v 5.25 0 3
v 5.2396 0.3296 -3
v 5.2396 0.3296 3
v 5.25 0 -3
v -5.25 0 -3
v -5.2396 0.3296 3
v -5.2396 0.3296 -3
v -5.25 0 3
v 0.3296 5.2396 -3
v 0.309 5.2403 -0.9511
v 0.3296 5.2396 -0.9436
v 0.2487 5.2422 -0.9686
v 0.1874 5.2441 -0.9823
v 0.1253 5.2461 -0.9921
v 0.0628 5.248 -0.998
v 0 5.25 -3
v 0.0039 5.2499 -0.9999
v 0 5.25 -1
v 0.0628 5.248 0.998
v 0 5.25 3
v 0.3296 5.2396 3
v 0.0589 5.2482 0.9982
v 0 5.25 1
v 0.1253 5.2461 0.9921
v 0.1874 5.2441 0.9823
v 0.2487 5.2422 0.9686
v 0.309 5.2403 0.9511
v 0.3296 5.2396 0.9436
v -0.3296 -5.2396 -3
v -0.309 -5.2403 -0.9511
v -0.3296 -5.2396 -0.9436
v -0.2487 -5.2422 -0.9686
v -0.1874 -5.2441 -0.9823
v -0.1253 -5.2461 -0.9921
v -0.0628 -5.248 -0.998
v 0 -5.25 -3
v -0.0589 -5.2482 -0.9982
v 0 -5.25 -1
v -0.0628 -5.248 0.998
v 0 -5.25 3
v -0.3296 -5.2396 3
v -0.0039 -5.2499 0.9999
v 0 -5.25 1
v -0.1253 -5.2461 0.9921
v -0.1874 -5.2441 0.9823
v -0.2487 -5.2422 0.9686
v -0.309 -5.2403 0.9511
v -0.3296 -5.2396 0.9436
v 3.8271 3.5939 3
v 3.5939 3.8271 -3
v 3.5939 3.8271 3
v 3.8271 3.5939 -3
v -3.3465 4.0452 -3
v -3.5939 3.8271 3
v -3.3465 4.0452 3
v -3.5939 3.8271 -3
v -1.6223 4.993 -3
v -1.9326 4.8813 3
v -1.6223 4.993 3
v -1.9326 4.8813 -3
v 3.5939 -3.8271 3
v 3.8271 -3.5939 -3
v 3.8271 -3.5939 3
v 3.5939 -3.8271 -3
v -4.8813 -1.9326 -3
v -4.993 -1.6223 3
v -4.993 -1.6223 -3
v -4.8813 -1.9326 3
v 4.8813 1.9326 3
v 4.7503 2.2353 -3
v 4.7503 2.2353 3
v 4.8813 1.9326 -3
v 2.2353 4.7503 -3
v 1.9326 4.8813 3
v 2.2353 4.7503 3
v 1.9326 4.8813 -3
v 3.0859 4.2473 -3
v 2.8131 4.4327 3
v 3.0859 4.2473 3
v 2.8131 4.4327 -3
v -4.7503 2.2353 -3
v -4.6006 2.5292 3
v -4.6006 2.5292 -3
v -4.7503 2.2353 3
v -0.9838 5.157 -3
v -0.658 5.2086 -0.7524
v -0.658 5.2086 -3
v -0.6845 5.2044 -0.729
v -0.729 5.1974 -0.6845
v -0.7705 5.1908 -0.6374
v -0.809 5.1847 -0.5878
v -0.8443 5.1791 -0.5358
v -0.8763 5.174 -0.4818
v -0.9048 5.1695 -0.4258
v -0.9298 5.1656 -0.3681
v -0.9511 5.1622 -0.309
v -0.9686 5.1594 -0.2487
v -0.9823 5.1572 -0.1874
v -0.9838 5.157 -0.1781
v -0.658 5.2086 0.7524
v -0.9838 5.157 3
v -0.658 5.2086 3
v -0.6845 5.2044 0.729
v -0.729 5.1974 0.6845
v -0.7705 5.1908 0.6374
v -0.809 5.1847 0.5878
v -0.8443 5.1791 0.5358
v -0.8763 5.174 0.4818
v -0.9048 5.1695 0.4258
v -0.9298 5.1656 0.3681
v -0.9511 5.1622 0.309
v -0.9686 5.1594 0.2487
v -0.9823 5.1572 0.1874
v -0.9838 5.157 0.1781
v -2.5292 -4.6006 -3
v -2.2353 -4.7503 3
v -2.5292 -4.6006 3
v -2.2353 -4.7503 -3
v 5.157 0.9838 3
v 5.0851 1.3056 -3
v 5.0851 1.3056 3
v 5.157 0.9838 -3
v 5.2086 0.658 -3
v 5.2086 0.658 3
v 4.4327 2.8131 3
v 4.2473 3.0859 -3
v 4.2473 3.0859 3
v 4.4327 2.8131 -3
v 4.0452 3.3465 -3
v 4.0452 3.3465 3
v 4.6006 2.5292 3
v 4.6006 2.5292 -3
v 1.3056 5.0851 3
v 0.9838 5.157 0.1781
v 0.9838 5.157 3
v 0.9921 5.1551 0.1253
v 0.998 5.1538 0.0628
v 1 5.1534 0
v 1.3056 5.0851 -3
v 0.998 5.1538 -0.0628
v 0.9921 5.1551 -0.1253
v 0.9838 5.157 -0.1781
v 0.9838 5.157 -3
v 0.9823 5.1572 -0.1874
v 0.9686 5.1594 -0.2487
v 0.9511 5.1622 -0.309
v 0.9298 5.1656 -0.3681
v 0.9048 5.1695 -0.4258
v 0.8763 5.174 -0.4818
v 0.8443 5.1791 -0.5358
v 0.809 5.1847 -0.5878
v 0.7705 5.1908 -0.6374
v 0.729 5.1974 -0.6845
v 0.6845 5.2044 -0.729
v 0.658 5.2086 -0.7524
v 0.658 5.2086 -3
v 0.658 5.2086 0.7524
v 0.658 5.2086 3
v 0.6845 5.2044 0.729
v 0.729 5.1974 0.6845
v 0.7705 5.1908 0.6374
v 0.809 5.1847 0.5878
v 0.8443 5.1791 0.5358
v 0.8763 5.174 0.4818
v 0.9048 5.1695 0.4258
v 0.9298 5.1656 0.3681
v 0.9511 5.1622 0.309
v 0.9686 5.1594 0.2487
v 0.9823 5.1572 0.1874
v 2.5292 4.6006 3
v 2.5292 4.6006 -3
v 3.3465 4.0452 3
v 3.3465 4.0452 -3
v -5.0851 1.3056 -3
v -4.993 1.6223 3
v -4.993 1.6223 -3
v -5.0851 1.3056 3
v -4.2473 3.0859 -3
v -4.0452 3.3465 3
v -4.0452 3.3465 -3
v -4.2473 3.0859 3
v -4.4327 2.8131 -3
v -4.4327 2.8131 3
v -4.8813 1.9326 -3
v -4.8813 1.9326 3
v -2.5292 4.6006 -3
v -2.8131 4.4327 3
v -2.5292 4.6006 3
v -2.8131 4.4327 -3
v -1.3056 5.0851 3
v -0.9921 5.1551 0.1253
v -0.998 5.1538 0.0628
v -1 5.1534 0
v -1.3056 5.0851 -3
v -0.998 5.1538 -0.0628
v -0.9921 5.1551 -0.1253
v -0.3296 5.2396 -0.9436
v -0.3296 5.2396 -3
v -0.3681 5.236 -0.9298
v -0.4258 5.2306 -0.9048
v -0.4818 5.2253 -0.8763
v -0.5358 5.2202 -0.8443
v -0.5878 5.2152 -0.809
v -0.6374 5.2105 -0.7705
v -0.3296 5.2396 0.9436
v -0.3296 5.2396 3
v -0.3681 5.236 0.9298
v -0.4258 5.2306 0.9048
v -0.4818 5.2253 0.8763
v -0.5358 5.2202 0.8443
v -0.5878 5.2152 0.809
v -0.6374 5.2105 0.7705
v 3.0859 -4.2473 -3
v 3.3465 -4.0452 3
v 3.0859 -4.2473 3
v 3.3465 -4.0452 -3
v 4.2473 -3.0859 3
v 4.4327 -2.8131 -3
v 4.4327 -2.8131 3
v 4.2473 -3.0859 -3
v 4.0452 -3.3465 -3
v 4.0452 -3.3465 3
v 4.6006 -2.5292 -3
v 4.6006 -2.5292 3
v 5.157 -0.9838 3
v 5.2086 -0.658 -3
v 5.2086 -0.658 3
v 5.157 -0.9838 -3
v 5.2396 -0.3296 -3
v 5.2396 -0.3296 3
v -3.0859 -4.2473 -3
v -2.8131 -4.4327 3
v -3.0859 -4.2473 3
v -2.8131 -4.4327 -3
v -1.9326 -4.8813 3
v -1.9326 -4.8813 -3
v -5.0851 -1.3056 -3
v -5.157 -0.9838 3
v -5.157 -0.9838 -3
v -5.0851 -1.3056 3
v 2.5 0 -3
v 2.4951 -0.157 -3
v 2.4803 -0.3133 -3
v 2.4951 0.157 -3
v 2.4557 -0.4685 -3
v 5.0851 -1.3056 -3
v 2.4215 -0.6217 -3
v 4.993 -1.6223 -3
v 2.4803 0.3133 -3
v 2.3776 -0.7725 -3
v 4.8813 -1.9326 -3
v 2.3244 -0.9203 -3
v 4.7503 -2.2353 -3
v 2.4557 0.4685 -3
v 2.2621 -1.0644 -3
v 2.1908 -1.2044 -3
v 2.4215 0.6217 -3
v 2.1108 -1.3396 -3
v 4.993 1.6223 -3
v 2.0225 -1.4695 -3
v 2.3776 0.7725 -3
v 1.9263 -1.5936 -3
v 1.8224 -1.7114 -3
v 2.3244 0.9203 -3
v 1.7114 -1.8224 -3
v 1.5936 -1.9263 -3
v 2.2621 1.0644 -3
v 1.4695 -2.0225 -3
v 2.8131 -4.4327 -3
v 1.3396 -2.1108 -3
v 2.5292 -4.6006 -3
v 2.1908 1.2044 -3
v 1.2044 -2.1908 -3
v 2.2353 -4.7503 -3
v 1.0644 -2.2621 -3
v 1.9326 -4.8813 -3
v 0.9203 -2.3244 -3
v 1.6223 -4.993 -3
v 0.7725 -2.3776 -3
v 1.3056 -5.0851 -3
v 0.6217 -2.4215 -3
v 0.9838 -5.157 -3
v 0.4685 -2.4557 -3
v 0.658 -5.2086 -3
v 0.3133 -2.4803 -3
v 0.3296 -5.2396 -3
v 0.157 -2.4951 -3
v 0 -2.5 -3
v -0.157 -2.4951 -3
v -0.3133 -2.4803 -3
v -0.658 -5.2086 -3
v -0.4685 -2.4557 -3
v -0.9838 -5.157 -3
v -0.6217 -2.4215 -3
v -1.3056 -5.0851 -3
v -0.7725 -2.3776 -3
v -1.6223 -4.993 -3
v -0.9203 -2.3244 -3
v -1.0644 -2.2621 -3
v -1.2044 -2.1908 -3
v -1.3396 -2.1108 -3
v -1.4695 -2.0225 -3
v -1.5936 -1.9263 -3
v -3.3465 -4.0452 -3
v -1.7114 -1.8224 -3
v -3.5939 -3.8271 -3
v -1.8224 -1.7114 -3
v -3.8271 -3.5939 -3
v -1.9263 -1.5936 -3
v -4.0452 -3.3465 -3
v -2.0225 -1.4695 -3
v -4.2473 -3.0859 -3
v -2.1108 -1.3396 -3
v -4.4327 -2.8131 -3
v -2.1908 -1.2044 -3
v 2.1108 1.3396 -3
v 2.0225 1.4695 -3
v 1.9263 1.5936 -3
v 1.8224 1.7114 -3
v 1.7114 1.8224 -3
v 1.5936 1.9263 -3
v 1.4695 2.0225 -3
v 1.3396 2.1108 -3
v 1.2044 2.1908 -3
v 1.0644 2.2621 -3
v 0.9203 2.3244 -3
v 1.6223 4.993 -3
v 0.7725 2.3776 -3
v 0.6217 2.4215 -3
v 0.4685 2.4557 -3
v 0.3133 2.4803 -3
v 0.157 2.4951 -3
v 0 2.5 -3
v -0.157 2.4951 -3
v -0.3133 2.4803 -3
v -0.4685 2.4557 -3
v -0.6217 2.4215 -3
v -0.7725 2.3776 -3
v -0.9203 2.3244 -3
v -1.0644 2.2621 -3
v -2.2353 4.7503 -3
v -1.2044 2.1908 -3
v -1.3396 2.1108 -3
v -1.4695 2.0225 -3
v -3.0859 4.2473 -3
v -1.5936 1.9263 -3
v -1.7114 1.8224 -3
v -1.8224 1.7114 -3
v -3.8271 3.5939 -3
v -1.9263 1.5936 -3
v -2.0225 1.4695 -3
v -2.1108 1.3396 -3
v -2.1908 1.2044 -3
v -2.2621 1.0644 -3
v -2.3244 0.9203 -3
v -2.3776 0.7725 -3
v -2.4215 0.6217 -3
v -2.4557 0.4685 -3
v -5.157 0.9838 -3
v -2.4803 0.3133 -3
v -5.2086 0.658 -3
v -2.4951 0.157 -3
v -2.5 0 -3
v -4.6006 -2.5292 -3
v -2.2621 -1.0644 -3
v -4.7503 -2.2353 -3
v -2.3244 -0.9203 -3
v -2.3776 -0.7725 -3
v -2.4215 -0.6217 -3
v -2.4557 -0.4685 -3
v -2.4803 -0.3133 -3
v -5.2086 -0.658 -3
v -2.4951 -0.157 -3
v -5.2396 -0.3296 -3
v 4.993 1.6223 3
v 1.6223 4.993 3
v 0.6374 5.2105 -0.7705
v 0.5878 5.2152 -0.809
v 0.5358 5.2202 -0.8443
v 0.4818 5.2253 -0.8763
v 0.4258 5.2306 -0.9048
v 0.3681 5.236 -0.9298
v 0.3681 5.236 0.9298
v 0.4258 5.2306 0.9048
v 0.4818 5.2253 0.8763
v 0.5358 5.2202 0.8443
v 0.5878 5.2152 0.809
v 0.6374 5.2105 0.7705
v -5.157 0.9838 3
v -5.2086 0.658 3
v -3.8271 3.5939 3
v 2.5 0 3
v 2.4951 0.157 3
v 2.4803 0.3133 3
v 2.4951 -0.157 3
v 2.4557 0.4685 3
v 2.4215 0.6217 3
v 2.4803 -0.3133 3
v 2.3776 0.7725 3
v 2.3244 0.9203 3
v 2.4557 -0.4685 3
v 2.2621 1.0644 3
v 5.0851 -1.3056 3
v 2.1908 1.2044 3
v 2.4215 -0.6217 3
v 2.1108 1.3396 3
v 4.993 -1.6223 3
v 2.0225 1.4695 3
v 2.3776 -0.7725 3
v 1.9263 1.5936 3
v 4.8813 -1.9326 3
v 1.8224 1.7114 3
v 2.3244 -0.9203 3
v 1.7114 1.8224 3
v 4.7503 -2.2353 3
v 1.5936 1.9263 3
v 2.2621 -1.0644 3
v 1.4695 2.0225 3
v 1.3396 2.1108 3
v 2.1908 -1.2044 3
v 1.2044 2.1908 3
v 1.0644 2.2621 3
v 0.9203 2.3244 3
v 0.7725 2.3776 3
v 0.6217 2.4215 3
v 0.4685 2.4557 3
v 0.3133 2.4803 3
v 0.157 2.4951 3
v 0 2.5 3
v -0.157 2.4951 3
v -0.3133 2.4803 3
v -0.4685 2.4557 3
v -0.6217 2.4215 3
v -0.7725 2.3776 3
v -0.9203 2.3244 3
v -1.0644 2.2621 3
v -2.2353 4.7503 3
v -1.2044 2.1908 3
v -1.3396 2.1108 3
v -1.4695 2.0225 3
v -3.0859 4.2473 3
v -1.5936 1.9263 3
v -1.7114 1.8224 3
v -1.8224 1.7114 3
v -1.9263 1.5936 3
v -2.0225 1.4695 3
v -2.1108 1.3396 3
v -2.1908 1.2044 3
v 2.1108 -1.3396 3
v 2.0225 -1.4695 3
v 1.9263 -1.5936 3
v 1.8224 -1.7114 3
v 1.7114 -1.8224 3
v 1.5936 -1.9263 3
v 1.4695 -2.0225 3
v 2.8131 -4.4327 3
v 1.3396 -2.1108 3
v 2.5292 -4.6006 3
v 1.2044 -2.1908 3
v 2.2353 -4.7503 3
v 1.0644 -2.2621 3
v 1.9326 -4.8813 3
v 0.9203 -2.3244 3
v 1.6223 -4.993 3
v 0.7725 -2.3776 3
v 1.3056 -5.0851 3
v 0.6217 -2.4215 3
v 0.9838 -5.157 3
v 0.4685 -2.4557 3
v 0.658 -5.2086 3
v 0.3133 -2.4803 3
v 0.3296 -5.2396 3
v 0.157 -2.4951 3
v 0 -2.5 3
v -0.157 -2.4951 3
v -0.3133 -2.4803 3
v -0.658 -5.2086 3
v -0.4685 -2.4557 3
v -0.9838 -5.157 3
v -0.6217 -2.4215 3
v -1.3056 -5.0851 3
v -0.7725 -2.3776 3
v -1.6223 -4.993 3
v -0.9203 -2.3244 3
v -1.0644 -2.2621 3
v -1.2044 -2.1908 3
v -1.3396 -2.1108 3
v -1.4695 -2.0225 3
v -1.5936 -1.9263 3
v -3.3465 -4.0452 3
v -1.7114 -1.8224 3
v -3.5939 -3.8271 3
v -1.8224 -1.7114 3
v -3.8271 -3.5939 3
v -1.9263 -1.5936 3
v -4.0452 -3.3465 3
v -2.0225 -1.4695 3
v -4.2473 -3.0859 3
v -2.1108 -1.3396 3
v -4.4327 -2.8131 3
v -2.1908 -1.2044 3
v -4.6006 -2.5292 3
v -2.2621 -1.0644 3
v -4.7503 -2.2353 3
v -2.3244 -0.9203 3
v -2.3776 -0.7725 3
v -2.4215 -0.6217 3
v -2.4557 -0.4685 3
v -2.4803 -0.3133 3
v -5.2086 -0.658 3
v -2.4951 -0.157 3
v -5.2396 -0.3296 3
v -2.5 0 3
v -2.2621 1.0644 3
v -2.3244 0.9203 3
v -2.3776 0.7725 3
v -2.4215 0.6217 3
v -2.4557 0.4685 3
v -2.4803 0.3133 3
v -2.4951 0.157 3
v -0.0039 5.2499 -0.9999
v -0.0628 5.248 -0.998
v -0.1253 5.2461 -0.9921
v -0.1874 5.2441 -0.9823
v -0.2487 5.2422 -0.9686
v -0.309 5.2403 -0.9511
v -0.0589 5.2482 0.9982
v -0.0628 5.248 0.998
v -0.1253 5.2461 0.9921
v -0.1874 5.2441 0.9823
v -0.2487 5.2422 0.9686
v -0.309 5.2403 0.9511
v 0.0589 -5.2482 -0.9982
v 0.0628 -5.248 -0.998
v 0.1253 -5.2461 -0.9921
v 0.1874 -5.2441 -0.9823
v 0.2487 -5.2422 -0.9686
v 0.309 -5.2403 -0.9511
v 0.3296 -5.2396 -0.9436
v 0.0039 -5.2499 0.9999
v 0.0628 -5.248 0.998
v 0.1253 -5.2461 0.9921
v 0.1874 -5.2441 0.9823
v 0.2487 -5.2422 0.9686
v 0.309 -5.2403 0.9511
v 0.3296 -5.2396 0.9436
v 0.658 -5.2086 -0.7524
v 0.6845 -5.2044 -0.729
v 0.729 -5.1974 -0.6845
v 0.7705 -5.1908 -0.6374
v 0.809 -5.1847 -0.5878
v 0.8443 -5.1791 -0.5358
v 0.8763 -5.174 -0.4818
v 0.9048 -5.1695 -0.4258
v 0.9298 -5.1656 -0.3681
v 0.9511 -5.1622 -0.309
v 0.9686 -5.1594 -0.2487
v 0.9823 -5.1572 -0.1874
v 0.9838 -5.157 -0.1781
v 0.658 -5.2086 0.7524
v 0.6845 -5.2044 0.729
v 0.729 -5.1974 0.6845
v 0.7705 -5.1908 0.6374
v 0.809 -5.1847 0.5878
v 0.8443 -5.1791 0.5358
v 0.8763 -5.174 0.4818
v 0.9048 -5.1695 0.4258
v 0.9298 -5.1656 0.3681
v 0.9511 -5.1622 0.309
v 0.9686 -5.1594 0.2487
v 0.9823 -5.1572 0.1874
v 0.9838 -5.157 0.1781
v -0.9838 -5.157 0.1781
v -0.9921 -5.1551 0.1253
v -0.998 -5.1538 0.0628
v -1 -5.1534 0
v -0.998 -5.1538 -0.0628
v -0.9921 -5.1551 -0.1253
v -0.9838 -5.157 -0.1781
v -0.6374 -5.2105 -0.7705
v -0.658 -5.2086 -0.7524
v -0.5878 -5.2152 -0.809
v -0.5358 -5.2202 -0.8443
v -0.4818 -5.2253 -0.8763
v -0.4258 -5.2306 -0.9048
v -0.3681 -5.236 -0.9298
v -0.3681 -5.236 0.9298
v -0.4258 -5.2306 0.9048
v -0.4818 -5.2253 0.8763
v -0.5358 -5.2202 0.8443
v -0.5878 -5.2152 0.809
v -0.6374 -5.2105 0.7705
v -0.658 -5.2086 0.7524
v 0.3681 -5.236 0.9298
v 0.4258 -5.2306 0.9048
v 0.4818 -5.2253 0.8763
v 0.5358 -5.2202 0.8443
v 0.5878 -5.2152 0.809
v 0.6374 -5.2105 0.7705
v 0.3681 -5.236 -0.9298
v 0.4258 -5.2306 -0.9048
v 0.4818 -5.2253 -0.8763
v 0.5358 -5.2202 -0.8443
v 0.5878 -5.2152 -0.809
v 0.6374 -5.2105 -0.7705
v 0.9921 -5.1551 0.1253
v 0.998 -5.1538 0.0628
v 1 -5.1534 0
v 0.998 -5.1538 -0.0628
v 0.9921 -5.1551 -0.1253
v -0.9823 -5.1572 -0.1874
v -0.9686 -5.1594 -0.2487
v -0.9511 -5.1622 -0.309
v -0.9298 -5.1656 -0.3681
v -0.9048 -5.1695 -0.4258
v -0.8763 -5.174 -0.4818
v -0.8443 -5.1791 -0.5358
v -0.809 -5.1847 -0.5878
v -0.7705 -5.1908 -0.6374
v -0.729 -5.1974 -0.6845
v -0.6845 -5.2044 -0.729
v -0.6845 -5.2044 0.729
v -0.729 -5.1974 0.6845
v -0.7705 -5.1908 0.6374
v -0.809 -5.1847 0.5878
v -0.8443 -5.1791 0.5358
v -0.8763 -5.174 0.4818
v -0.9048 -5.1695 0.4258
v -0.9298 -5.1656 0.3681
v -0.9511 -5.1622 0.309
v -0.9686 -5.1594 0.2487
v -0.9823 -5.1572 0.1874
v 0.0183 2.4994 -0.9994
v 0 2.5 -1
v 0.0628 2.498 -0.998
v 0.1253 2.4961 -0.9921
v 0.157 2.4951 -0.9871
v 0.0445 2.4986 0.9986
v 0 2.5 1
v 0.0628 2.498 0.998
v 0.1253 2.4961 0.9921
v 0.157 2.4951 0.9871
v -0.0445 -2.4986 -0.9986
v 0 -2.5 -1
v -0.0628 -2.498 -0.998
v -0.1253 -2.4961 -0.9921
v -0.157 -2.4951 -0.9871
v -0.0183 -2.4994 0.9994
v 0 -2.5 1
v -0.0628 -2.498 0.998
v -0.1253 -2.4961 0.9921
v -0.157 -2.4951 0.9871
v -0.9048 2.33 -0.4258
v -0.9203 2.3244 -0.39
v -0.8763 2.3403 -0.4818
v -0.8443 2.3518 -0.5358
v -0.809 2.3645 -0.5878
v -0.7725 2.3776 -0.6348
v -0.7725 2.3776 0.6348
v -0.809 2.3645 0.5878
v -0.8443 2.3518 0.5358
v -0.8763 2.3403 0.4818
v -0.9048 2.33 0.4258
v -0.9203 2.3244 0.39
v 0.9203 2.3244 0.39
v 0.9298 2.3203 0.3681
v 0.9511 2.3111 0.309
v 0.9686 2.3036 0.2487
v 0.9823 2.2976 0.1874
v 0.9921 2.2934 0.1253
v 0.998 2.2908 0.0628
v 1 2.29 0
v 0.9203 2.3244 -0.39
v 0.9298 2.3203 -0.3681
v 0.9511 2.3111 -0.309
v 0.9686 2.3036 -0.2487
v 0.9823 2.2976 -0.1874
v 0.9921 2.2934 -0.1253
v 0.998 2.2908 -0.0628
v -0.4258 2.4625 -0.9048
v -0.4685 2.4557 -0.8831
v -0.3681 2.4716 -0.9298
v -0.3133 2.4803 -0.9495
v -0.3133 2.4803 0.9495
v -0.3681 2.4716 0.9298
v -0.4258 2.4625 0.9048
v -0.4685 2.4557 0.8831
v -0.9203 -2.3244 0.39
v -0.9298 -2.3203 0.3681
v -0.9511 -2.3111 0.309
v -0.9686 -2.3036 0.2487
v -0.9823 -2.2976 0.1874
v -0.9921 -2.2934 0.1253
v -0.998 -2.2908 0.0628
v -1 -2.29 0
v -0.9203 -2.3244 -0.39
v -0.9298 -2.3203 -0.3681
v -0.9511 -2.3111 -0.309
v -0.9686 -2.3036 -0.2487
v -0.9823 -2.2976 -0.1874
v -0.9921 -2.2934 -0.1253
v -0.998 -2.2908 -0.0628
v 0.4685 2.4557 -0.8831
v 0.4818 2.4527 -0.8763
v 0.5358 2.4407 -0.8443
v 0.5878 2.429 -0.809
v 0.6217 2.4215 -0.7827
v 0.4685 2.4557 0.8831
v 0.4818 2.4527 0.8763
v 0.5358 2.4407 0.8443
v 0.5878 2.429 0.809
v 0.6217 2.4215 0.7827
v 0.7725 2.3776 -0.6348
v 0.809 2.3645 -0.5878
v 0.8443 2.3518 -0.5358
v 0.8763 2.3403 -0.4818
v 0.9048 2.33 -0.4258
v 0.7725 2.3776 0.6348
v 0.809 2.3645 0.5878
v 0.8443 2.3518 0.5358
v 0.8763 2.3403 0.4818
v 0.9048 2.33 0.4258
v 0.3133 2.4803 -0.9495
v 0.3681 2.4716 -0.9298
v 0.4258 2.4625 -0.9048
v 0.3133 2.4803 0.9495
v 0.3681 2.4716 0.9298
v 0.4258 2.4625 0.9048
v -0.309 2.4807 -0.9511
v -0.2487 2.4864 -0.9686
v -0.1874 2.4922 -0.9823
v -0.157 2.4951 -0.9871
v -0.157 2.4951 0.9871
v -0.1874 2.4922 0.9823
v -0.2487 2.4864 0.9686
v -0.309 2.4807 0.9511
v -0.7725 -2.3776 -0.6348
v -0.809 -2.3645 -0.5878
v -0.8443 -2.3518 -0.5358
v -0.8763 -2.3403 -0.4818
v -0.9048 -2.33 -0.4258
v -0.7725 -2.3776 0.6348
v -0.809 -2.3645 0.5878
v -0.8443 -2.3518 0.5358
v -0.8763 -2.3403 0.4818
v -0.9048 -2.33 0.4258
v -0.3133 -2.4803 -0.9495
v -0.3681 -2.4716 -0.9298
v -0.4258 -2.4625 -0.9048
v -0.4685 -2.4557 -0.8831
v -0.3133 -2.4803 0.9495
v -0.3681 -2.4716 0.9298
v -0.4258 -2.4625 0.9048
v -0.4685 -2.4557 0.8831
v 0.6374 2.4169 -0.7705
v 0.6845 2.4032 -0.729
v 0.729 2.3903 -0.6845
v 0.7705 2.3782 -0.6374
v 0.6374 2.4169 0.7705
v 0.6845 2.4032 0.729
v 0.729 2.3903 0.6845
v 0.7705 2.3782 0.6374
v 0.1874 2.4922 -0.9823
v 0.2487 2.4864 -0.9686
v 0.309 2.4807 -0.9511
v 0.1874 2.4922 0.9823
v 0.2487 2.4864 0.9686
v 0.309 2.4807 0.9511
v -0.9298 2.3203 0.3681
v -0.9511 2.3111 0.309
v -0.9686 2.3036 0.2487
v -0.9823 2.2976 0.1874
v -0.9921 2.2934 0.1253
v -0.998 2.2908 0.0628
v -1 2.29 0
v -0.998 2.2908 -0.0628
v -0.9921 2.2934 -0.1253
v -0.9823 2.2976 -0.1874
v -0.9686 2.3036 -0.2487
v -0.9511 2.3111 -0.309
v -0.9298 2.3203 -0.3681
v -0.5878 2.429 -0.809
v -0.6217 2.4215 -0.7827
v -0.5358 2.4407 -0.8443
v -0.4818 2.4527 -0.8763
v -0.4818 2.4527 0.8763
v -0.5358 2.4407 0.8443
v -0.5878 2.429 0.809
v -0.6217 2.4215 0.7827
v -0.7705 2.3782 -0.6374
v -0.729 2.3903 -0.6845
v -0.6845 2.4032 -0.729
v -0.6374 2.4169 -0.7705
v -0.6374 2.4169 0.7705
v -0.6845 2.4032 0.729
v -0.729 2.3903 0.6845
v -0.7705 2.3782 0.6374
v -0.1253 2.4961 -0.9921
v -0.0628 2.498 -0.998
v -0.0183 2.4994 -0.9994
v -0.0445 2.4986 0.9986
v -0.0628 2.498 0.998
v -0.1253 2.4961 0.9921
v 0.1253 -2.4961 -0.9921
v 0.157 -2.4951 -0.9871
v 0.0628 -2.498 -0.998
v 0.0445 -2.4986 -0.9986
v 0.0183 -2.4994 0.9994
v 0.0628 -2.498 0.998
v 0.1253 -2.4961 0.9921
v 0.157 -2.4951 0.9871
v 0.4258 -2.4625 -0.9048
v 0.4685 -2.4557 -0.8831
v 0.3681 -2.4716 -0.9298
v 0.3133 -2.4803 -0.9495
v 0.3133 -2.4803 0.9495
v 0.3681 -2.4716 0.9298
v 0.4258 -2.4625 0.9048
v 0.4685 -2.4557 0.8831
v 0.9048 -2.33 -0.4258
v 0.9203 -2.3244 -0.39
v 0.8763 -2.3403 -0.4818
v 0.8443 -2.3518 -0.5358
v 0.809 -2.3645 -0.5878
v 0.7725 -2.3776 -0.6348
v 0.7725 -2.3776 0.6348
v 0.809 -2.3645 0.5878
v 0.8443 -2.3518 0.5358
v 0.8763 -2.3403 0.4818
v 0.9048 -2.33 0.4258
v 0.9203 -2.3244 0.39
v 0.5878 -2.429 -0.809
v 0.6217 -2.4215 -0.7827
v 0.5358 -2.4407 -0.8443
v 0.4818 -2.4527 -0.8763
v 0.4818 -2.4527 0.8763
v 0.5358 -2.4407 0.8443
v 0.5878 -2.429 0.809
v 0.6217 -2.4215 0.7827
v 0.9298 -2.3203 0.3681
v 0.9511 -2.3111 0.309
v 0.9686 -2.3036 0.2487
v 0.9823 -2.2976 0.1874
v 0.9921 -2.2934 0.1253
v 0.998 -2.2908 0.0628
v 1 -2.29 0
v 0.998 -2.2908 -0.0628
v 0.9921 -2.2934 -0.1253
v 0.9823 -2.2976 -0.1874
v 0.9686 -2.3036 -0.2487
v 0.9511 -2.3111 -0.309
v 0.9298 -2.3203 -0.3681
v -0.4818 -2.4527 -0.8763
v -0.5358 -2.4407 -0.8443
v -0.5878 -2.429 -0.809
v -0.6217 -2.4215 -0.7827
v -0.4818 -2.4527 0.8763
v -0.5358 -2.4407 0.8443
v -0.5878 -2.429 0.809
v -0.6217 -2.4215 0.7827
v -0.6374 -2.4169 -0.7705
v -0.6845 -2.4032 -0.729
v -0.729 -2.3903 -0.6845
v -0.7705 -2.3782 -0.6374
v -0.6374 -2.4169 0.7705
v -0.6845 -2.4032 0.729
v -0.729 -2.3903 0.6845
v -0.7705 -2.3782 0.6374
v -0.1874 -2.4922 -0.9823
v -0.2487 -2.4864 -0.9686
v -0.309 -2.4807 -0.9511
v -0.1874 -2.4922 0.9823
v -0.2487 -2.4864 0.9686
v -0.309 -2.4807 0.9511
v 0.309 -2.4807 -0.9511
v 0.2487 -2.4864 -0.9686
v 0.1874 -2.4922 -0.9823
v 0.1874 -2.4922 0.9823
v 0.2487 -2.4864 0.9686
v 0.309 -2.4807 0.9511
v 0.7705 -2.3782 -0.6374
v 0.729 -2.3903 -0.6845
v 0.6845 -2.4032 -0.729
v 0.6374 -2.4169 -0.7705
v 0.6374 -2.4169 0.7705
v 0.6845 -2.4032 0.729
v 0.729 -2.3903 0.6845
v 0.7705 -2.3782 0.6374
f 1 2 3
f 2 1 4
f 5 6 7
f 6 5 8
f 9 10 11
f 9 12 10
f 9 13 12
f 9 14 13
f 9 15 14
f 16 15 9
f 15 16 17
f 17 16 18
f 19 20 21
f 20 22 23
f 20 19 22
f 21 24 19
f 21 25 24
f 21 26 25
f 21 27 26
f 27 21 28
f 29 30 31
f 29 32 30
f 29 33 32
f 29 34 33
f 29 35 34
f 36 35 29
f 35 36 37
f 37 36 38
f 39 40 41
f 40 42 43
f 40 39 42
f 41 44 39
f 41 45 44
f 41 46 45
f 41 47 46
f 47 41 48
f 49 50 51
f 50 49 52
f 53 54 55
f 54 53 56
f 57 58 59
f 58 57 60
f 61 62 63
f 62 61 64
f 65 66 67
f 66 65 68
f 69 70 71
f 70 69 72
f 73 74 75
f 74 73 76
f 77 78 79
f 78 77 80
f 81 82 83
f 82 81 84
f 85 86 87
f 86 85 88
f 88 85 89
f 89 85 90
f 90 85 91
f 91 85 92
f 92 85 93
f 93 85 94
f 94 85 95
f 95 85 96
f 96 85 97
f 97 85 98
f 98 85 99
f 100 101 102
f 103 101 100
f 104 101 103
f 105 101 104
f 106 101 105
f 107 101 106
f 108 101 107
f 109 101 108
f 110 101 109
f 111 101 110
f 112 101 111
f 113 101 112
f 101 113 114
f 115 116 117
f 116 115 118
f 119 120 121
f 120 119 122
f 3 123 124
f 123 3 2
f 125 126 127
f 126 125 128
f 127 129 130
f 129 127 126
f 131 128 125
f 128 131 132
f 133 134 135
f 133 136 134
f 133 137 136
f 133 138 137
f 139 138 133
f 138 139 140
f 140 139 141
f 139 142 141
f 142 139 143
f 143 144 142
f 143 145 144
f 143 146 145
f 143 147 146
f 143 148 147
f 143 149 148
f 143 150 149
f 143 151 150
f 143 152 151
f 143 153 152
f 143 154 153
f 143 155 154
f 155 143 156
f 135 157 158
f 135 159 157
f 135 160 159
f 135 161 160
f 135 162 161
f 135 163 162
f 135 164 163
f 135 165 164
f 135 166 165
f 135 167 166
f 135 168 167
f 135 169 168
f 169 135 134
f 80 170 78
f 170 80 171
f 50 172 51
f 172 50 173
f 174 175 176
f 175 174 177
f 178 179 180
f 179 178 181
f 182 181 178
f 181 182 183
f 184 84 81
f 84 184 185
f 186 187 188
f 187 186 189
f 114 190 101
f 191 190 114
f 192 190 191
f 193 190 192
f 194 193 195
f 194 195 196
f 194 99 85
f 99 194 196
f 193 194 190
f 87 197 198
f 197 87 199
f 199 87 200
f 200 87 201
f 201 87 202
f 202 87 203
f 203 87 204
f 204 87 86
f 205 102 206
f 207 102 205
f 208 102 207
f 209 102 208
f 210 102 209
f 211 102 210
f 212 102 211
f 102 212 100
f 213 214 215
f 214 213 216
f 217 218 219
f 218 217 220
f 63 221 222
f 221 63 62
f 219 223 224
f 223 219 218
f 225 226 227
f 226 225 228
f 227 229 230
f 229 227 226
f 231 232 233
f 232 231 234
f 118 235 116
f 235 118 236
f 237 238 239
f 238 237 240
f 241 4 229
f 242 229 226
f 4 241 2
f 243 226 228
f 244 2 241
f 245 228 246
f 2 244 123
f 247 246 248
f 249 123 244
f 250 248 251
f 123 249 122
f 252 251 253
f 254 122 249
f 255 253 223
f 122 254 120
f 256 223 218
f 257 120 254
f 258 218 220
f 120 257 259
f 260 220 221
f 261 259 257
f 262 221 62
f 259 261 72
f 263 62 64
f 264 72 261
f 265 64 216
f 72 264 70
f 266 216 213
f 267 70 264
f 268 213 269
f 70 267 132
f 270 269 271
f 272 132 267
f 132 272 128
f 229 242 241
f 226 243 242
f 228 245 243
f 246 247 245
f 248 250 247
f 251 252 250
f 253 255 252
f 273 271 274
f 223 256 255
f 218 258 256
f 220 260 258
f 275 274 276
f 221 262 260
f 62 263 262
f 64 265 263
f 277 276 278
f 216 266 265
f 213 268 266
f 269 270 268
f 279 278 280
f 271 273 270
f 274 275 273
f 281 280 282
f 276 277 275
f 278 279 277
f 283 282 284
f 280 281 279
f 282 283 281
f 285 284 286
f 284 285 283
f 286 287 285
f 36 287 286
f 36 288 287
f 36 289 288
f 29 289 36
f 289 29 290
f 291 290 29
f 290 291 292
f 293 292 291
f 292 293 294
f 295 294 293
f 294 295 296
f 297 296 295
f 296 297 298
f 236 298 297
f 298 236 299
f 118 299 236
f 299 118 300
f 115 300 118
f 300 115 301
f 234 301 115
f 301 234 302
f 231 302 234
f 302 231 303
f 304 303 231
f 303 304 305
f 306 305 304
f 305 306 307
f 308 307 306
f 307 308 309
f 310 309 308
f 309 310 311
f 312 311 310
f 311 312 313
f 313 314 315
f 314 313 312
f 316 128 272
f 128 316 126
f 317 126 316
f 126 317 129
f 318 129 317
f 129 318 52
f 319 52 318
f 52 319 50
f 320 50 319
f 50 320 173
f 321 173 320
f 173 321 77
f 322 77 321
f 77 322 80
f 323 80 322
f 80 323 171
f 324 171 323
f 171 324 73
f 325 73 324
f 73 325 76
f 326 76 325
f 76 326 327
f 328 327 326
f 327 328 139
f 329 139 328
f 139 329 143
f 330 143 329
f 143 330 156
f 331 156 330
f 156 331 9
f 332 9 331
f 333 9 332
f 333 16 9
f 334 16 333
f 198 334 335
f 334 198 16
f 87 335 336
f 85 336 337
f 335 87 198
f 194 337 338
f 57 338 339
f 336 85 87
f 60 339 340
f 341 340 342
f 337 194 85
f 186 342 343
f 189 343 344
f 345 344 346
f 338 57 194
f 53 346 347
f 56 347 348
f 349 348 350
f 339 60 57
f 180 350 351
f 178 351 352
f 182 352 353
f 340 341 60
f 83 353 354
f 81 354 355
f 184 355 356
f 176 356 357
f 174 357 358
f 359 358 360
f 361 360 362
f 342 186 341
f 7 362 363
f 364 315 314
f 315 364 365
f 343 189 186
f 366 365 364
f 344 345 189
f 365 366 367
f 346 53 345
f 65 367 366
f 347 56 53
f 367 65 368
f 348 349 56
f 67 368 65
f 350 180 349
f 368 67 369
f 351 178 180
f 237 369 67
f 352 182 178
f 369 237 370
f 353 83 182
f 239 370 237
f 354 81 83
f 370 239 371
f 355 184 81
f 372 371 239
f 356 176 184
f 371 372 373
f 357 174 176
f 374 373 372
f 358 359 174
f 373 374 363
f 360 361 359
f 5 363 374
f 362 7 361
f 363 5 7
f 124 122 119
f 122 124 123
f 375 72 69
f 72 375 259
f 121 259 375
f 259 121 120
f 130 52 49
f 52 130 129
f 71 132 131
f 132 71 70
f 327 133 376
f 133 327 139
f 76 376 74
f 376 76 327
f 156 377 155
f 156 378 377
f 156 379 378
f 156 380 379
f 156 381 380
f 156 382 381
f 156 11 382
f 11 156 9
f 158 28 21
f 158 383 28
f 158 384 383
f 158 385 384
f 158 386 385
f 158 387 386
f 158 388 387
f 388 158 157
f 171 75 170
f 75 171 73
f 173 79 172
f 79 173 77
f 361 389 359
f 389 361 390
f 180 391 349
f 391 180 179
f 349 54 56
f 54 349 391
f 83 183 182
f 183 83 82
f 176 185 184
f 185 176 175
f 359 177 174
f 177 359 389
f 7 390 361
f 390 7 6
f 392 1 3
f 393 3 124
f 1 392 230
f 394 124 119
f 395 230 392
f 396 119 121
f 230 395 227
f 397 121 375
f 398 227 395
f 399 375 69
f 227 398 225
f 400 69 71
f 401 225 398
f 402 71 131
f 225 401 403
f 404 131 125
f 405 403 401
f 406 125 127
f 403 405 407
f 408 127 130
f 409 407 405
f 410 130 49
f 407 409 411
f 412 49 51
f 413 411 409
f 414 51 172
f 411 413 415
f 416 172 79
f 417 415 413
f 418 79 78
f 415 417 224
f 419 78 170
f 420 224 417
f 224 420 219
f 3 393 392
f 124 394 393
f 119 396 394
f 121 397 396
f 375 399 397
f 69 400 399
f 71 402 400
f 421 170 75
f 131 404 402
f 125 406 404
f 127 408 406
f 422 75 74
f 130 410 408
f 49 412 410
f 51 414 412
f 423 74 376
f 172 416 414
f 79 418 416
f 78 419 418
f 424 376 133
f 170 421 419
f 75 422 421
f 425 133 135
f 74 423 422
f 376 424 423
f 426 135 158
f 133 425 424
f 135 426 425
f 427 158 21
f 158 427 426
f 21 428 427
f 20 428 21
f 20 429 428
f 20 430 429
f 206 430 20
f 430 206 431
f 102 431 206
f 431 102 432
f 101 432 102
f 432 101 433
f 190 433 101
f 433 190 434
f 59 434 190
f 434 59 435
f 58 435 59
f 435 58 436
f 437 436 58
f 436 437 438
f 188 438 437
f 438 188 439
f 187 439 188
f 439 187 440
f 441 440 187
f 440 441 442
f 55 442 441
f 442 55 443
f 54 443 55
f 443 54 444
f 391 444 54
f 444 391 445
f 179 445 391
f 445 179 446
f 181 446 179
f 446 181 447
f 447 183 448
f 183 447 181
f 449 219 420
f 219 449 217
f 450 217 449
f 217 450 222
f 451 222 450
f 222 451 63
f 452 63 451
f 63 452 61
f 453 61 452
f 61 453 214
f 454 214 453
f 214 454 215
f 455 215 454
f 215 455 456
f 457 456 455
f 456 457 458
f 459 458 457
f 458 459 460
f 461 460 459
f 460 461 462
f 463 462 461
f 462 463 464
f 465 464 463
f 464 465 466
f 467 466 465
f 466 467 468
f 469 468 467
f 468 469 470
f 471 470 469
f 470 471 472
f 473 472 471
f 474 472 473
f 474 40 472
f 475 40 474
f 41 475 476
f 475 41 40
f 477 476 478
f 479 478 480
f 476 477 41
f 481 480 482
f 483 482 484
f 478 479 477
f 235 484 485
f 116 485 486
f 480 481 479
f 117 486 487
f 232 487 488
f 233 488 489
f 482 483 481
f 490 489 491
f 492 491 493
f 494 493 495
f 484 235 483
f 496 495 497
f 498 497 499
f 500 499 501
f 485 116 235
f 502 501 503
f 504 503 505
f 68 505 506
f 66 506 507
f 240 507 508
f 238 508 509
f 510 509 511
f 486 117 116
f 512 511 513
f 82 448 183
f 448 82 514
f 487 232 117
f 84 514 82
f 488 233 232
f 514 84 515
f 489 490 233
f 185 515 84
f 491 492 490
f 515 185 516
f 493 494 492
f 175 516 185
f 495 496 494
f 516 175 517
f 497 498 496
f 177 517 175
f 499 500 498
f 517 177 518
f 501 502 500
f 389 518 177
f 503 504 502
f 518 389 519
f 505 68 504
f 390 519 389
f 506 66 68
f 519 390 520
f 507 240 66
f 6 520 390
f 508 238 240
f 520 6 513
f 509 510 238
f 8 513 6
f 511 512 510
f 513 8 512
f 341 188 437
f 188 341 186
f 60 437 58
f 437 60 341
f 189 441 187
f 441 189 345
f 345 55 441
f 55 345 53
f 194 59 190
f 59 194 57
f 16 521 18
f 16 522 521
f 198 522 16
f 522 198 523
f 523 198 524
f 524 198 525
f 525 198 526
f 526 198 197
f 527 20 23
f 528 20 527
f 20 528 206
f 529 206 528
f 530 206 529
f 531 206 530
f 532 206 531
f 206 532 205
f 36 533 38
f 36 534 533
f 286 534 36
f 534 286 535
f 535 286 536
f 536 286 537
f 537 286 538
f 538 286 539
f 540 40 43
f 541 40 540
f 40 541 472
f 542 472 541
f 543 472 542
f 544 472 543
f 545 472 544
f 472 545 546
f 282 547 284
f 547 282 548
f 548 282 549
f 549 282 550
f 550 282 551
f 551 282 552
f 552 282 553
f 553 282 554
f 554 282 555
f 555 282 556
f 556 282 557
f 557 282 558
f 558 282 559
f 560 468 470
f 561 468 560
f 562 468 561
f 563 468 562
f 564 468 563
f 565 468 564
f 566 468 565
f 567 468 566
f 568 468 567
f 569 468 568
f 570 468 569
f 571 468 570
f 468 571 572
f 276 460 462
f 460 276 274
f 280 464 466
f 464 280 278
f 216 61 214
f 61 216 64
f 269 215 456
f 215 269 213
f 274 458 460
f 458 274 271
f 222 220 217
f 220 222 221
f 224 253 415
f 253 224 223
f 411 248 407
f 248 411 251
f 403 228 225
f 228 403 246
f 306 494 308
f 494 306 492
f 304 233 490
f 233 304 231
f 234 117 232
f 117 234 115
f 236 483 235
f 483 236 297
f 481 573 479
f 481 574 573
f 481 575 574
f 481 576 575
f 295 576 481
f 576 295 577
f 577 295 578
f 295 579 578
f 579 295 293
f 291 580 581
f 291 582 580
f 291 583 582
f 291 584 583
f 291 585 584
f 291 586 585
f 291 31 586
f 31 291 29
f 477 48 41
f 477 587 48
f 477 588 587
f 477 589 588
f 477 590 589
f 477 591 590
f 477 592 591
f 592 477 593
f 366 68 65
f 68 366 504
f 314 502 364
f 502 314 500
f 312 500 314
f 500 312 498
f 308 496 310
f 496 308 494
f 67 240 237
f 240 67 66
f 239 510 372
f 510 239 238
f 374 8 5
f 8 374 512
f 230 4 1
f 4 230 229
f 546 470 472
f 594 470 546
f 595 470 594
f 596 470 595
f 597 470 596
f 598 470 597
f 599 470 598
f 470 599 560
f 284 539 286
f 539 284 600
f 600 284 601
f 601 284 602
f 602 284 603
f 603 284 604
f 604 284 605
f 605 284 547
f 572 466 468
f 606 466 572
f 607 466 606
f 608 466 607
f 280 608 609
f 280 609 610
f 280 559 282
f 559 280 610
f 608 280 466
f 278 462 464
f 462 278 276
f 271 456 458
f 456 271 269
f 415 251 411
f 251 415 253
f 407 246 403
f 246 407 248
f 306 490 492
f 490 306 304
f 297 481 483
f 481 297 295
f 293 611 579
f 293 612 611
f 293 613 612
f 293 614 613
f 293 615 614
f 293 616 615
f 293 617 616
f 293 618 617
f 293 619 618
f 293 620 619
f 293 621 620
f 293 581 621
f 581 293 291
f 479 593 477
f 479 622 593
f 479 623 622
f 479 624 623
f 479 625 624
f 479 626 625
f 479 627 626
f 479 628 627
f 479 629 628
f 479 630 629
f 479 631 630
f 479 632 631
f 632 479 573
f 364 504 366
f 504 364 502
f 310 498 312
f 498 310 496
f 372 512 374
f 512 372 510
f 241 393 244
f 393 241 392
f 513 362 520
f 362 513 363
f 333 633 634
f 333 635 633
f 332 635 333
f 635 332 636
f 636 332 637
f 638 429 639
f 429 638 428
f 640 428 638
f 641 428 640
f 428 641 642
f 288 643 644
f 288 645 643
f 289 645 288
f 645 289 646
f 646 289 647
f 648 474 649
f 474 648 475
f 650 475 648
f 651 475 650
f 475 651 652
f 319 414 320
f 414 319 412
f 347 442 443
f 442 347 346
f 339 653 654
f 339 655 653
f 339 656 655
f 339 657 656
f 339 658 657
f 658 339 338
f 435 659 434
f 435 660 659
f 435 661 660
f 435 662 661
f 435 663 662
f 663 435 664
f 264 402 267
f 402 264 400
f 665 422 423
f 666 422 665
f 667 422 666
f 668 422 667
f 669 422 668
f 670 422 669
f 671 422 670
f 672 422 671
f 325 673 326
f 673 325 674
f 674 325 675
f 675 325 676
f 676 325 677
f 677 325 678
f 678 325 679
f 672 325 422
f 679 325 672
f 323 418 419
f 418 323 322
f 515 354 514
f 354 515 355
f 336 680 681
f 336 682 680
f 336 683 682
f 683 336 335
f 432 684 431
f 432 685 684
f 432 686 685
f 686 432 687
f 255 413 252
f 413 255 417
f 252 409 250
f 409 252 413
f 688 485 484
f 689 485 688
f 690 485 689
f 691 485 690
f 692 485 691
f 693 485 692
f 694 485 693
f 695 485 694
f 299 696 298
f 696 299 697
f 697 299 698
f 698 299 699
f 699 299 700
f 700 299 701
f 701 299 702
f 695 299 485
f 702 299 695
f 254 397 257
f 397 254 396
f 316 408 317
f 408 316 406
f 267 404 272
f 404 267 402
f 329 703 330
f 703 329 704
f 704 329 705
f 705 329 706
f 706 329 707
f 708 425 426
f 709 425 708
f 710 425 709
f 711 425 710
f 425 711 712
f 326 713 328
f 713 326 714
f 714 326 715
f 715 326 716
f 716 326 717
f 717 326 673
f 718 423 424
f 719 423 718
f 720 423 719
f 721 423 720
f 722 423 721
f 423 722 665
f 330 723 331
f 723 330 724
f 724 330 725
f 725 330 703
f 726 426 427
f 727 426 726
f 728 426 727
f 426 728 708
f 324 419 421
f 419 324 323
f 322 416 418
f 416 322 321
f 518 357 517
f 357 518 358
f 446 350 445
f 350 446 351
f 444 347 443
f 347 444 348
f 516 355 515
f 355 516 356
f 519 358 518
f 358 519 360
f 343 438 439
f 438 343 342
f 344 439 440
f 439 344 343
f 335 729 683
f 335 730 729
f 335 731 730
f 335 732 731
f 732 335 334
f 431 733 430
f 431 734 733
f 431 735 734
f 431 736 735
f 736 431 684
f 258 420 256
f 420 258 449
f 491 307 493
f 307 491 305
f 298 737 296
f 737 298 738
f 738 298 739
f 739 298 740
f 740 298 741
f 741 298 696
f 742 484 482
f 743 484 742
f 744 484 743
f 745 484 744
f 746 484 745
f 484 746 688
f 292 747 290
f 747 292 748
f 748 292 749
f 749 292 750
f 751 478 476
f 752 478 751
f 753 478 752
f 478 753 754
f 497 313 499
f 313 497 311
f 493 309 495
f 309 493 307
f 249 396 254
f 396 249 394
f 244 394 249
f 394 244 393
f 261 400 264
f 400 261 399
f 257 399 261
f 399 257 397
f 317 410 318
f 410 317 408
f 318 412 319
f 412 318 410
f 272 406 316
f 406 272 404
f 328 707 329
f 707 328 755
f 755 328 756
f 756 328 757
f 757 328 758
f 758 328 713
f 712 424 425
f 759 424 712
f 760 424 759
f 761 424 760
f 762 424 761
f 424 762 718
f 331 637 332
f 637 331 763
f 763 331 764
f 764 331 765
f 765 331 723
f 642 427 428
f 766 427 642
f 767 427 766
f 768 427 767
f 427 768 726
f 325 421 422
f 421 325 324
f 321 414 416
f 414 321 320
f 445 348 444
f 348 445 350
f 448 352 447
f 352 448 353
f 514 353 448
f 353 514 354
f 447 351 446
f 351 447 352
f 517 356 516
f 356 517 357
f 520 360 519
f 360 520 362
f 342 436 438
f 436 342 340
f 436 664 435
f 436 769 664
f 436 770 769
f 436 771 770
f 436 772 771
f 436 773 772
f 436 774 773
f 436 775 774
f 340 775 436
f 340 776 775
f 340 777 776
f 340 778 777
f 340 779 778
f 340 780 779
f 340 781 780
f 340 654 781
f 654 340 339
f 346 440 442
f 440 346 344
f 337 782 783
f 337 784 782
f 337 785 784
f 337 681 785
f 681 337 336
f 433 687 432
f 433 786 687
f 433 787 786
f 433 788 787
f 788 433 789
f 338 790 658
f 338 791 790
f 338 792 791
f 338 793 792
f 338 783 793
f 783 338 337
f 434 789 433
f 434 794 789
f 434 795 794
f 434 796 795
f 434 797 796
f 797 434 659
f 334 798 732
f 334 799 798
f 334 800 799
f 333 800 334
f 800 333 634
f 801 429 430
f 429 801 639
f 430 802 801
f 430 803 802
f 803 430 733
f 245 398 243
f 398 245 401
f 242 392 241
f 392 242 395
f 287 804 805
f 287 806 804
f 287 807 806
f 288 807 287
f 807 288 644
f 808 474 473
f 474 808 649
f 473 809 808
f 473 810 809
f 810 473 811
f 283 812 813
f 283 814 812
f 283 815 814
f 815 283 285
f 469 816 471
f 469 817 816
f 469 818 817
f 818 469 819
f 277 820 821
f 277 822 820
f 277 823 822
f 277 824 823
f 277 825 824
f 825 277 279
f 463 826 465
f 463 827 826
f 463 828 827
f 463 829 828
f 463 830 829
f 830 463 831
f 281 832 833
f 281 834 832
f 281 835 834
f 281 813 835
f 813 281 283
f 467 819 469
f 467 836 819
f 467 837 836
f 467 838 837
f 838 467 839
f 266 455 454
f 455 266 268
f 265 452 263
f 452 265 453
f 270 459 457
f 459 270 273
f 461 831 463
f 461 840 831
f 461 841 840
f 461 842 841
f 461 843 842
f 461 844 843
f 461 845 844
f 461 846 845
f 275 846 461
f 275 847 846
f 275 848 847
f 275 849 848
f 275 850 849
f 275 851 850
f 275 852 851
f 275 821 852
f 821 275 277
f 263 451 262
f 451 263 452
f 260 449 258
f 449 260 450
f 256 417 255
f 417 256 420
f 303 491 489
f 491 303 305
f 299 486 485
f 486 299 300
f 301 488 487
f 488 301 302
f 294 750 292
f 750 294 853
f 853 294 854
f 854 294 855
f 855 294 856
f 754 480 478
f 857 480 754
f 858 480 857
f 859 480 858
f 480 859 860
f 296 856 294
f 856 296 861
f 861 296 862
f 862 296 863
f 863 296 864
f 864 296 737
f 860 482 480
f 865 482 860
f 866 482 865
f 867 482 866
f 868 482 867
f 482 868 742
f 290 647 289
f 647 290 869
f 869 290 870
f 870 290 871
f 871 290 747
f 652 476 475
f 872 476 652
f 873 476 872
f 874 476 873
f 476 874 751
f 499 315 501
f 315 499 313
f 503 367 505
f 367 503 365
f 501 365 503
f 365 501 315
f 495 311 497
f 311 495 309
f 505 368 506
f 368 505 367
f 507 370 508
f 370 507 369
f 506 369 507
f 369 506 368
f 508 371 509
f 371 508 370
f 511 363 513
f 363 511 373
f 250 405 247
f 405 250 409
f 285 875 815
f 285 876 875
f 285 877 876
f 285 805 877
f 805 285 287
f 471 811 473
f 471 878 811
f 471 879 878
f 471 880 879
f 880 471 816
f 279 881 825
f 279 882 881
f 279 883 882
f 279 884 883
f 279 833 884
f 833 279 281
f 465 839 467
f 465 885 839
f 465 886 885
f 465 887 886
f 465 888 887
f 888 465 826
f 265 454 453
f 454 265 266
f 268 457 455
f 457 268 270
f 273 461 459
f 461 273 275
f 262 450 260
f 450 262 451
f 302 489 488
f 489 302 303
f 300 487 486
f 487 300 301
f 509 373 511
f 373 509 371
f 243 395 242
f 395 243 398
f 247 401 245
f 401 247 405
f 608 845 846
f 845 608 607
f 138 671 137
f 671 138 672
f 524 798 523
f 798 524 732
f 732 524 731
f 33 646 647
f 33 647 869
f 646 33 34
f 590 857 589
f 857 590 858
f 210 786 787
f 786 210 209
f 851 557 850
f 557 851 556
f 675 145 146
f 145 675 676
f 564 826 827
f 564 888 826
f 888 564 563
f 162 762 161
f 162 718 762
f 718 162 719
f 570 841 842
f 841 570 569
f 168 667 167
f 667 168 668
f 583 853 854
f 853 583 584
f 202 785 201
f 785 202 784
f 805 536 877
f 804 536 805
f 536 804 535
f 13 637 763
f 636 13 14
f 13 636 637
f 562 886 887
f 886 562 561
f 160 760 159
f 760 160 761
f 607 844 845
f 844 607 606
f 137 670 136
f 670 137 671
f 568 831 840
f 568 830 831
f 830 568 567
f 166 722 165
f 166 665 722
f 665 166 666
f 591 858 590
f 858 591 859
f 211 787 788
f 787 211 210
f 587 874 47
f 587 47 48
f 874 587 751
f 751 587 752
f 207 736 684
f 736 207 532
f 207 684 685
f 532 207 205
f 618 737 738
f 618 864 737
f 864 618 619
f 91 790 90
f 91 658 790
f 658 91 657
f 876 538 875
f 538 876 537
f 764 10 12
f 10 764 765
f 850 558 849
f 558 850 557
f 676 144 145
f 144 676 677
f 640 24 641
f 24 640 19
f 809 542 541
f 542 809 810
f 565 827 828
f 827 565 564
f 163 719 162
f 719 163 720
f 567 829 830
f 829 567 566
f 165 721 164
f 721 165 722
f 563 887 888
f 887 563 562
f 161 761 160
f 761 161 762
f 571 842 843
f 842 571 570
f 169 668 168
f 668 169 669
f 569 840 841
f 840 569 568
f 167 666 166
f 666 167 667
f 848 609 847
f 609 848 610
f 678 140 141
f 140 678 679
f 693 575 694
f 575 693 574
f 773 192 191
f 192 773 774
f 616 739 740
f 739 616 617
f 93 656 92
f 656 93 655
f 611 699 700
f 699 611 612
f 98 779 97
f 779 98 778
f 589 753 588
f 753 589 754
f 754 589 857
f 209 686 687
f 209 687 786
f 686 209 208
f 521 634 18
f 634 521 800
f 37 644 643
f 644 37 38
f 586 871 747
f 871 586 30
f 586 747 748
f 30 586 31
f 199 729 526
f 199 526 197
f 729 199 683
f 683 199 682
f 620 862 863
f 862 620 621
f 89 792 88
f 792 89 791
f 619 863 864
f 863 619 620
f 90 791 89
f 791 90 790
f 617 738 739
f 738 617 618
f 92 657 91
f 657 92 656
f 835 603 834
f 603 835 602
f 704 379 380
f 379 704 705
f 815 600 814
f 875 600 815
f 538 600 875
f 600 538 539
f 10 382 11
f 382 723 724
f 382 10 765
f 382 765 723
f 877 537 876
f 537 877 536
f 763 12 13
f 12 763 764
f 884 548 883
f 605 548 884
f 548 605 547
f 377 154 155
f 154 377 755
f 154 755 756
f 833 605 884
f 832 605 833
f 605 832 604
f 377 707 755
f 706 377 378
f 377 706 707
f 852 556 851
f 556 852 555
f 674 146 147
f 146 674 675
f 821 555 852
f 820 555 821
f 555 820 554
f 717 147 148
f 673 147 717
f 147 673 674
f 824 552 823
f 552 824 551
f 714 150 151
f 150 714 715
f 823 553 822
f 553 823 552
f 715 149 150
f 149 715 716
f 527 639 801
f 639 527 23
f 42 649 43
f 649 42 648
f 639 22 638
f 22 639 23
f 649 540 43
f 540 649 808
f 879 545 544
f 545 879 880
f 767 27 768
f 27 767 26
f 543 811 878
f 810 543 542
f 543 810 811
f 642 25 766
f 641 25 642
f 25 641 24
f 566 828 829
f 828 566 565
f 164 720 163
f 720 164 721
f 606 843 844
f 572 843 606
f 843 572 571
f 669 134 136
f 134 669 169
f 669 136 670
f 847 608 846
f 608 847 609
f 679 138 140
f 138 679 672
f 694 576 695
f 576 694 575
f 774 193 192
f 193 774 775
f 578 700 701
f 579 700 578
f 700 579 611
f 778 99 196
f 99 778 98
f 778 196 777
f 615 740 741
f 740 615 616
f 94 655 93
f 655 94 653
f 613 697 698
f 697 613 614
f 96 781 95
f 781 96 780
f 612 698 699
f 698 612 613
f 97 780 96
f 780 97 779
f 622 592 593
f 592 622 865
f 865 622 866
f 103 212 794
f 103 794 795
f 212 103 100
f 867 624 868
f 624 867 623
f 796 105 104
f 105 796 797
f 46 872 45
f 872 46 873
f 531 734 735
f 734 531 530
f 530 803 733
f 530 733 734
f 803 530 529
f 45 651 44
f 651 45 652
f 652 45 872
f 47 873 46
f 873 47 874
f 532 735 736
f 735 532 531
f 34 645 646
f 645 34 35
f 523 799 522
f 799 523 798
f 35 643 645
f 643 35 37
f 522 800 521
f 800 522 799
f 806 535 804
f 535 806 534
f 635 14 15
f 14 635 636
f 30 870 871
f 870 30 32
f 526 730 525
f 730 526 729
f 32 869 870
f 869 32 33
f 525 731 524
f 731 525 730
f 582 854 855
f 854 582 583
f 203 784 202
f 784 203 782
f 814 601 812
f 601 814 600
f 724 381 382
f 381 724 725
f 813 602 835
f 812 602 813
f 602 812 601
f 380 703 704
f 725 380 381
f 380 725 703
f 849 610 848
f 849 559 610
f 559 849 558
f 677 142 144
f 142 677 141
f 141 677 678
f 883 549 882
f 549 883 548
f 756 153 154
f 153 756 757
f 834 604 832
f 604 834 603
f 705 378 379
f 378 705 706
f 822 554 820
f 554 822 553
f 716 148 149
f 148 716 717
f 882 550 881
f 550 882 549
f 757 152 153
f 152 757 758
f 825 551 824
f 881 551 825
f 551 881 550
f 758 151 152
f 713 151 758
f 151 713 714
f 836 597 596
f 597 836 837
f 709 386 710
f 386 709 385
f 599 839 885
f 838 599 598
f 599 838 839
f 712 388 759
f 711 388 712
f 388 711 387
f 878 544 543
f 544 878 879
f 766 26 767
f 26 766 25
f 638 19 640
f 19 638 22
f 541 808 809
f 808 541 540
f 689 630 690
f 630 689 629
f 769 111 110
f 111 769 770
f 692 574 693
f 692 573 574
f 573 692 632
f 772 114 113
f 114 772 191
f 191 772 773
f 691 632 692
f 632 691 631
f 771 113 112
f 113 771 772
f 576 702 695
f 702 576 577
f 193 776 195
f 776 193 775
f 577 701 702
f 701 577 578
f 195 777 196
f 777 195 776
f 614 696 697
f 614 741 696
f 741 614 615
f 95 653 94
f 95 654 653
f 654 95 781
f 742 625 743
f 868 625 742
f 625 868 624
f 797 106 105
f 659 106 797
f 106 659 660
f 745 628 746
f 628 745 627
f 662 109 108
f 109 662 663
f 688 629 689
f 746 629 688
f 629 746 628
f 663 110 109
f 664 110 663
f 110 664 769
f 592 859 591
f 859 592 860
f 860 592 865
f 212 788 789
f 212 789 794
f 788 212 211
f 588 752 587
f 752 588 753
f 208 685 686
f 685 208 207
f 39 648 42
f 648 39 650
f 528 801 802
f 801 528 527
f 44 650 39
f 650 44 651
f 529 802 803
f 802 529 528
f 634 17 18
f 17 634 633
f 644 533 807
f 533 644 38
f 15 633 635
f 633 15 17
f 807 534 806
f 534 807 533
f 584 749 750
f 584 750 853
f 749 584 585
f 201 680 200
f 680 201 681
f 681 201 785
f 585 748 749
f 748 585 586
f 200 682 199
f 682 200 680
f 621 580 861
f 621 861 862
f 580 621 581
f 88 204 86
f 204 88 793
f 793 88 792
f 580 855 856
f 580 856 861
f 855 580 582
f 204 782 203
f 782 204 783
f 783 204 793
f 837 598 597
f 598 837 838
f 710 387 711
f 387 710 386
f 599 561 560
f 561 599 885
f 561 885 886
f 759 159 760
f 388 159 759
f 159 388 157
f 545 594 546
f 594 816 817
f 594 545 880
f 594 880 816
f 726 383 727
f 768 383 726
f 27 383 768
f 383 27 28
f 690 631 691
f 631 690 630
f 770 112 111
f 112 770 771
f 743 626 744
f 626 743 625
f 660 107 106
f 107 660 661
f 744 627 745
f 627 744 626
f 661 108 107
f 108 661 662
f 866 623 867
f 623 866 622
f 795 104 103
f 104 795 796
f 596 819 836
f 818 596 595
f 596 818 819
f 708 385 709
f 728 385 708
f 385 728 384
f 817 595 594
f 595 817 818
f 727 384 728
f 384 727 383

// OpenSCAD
sn=100;
difference() {
  cylinder(h=6, d1=10.5, d2=10.5, center=true, $fn=sn);
  cylinder(h=7, d1=5, d2=5, center=true, $fn=sn);
  
  rotate([90,0,0])
  cylinder(h=12, d1=2, d2=2, center=true, $fn=sn);
}
